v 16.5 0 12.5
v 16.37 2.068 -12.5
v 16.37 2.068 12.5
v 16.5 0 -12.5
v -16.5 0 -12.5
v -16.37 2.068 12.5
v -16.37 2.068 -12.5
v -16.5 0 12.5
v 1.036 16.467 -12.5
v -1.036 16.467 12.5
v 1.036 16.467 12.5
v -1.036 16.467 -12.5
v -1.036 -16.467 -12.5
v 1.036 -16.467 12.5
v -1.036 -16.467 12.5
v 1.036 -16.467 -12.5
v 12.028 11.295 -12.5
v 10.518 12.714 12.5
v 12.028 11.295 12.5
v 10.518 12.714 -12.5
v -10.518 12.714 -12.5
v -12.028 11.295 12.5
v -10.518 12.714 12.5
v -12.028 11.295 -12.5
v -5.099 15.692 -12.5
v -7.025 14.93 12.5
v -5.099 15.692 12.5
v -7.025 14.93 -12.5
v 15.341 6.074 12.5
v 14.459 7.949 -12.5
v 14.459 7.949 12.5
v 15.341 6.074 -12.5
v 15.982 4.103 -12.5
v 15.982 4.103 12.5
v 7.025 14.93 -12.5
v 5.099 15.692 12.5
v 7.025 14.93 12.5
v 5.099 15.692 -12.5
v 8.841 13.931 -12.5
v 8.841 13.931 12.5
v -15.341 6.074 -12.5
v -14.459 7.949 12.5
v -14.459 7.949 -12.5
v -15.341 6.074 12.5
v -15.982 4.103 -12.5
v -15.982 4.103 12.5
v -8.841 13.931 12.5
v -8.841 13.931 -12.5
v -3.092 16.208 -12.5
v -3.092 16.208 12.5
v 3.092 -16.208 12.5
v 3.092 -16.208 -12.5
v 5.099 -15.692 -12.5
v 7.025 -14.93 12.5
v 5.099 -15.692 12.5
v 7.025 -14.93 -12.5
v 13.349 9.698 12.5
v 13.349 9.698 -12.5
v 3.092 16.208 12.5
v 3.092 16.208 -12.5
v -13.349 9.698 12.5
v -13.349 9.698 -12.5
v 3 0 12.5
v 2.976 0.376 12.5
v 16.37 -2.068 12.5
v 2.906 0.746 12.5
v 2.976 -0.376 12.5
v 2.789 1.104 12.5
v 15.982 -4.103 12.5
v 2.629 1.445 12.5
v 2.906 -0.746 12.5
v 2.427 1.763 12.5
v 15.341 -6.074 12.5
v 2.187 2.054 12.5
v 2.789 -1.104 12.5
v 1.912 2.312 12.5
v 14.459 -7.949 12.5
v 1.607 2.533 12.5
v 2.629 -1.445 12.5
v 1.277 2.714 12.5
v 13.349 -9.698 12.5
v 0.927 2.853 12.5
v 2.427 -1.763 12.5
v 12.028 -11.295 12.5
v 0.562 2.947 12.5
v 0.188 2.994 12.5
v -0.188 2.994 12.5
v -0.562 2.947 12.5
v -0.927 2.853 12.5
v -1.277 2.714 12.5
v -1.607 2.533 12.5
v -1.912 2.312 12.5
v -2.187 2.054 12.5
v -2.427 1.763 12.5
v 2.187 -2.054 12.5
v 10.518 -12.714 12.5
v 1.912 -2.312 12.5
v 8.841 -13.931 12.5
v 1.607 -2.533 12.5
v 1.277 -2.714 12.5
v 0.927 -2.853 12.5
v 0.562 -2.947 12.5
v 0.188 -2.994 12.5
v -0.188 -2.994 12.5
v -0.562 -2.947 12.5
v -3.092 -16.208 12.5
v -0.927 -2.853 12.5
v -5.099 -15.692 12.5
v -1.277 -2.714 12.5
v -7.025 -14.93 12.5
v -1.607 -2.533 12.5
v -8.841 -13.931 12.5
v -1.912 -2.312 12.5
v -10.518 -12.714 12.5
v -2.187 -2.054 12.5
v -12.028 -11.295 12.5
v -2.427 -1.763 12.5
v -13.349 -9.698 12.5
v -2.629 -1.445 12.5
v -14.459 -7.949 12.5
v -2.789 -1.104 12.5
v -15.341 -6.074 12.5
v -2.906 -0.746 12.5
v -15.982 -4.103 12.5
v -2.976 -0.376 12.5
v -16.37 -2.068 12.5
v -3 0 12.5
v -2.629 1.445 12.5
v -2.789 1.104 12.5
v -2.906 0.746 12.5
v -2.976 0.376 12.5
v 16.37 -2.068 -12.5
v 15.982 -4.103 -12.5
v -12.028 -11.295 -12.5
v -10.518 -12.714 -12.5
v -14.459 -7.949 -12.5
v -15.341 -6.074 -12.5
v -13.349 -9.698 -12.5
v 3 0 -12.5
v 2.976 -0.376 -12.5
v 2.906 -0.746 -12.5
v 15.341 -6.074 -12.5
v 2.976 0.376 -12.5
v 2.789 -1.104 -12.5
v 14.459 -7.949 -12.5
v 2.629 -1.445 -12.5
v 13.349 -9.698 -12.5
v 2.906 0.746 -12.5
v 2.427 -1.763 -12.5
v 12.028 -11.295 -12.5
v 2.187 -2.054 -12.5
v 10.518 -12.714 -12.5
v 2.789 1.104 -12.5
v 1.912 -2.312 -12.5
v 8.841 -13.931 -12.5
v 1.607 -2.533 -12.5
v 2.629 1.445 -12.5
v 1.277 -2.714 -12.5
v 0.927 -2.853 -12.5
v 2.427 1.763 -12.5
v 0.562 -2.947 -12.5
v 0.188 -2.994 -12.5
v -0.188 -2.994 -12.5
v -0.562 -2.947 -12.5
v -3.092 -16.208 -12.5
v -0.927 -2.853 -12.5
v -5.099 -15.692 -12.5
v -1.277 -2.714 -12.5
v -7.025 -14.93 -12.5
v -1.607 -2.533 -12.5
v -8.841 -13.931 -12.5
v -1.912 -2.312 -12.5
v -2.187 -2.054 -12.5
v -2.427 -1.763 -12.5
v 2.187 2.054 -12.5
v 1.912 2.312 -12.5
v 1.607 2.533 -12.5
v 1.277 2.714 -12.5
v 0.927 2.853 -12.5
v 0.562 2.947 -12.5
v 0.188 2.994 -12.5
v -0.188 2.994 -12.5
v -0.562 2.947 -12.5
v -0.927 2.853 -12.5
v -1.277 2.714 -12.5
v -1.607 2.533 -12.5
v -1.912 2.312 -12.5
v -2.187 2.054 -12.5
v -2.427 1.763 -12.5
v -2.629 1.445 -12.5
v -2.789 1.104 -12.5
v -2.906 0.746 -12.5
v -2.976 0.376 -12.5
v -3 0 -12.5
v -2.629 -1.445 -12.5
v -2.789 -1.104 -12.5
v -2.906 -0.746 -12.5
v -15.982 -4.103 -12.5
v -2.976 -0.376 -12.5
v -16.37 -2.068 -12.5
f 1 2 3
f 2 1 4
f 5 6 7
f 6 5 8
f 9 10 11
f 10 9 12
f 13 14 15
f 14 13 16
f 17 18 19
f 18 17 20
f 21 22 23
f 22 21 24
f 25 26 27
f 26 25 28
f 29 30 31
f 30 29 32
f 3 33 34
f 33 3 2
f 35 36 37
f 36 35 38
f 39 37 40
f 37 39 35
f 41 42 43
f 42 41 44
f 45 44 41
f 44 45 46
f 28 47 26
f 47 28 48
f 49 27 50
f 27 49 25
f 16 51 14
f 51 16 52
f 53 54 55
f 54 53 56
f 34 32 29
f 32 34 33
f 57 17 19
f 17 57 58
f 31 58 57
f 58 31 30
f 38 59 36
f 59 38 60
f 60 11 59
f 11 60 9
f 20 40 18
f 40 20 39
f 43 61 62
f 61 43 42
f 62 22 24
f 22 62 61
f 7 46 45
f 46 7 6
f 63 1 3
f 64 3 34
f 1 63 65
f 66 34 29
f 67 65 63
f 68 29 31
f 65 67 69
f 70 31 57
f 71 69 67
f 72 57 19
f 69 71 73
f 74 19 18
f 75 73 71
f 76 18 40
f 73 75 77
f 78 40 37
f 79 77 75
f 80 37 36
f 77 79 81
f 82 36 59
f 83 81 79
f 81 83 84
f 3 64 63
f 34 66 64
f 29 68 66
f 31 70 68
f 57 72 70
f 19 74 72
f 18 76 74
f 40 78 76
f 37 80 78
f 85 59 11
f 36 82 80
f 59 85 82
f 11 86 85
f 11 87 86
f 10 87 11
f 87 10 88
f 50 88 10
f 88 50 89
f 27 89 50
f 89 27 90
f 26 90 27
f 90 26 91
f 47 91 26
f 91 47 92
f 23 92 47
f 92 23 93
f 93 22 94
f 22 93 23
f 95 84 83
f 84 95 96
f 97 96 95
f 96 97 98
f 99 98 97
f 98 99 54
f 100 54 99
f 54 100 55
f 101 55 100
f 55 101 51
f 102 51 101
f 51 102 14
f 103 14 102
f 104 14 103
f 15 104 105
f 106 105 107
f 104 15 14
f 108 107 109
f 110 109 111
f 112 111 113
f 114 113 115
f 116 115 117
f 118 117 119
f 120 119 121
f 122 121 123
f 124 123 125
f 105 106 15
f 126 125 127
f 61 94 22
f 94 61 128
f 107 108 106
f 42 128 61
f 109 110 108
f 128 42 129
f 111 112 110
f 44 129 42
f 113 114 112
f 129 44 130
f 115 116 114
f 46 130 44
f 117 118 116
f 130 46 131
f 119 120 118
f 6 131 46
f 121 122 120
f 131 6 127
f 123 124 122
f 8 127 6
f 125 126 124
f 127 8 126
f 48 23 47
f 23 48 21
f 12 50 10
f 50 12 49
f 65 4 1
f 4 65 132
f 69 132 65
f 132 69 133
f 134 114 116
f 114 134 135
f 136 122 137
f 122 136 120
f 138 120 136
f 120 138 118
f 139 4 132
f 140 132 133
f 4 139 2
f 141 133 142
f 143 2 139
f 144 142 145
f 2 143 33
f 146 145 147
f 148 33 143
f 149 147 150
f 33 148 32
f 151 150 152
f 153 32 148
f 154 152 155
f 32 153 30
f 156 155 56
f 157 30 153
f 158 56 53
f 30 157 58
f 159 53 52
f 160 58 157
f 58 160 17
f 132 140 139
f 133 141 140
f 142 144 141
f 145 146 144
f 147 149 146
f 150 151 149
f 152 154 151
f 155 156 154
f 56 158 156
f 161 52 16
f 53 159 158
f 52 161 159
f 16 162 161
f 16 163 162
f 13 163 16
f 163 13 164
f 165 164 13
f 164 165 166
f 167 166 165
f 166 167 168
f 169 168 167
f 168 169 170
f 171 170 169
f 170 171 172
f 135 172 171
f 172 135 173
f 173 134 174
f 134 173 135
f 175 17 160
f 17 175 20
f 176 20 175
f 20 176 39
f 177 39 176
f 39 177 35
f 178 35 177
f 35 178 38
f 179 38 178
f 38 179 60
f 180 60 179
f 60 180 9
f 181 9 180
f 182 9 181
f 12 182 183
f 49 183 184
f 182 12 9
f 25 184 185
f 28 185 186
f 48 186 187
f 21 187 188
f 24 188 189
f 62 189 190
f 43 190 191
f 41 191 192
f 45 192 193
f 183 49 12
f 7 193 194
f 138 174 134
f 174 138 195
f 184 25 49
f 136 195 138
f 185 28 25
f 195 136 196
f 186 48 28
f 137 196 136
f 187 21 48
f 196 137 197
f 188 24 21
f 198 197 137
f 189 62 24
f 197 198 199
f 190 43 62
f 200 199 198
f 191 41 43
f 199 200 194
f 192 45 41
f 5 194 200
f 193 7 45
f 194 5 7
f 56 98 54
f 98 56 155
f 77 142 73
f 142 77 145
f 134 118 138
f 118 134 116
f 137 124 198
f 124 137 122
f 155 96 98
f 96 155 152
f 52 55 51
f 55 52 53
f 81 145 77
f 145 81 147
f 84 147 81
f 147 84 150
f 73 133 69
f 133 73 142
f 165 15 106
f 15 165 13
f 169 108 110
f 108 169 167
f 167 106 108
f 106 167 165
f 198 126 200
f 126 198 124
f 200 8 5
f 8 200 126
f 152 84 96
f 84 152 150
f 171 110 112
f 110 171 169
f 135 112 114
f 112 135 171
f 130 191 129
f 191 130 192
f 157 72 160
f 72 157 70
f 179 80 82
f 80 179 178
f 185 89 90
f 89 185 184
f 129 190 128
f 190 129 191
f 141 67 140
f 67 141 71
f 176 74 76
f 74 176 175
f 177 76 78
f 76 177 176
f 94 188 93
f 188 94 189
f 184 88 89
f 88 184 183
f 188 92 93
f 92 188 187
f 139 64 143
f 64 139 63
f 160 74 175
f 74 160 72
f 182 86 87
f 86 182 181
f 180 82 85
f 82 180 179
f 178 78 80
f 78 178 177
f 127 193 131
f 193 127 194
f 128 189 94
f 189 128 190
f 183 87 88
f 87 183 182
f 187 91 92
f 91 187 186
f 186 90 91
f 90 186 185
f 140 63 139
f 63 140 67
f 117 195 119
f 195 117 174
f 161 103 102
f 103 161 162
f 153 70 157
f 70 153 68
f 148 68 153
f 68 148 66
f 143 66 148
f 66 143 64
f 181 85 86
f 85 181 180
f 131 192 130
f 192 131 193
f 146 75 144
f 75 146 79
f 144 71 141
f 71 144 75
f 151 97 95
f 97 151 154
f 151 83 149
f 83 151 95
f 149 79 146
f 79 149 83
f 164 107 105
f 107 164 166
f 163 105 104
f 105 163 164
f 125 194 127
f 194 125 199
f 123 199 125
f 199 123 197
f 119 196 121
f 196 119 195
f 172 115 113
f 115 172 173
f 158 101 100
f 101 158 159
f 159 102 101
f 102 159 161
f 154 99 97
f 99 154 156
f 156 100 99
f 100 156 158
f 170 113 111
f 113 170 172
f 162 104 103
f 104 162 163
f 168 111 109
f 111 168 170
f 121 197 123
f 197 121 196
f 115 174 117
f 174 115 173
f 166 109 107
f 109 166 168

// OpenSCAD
$fn = 50;


difference() {
	union() {
		translate(v = [0, 0, -12.5000000000]) {
			cylinder(h = 25, r = 16.5000000000);
		}
	}
	union() {
		translate(v = [0, 0, -100.0000000000]) {
			cylinder(h = 200, r = 3);
		}
	}
}
